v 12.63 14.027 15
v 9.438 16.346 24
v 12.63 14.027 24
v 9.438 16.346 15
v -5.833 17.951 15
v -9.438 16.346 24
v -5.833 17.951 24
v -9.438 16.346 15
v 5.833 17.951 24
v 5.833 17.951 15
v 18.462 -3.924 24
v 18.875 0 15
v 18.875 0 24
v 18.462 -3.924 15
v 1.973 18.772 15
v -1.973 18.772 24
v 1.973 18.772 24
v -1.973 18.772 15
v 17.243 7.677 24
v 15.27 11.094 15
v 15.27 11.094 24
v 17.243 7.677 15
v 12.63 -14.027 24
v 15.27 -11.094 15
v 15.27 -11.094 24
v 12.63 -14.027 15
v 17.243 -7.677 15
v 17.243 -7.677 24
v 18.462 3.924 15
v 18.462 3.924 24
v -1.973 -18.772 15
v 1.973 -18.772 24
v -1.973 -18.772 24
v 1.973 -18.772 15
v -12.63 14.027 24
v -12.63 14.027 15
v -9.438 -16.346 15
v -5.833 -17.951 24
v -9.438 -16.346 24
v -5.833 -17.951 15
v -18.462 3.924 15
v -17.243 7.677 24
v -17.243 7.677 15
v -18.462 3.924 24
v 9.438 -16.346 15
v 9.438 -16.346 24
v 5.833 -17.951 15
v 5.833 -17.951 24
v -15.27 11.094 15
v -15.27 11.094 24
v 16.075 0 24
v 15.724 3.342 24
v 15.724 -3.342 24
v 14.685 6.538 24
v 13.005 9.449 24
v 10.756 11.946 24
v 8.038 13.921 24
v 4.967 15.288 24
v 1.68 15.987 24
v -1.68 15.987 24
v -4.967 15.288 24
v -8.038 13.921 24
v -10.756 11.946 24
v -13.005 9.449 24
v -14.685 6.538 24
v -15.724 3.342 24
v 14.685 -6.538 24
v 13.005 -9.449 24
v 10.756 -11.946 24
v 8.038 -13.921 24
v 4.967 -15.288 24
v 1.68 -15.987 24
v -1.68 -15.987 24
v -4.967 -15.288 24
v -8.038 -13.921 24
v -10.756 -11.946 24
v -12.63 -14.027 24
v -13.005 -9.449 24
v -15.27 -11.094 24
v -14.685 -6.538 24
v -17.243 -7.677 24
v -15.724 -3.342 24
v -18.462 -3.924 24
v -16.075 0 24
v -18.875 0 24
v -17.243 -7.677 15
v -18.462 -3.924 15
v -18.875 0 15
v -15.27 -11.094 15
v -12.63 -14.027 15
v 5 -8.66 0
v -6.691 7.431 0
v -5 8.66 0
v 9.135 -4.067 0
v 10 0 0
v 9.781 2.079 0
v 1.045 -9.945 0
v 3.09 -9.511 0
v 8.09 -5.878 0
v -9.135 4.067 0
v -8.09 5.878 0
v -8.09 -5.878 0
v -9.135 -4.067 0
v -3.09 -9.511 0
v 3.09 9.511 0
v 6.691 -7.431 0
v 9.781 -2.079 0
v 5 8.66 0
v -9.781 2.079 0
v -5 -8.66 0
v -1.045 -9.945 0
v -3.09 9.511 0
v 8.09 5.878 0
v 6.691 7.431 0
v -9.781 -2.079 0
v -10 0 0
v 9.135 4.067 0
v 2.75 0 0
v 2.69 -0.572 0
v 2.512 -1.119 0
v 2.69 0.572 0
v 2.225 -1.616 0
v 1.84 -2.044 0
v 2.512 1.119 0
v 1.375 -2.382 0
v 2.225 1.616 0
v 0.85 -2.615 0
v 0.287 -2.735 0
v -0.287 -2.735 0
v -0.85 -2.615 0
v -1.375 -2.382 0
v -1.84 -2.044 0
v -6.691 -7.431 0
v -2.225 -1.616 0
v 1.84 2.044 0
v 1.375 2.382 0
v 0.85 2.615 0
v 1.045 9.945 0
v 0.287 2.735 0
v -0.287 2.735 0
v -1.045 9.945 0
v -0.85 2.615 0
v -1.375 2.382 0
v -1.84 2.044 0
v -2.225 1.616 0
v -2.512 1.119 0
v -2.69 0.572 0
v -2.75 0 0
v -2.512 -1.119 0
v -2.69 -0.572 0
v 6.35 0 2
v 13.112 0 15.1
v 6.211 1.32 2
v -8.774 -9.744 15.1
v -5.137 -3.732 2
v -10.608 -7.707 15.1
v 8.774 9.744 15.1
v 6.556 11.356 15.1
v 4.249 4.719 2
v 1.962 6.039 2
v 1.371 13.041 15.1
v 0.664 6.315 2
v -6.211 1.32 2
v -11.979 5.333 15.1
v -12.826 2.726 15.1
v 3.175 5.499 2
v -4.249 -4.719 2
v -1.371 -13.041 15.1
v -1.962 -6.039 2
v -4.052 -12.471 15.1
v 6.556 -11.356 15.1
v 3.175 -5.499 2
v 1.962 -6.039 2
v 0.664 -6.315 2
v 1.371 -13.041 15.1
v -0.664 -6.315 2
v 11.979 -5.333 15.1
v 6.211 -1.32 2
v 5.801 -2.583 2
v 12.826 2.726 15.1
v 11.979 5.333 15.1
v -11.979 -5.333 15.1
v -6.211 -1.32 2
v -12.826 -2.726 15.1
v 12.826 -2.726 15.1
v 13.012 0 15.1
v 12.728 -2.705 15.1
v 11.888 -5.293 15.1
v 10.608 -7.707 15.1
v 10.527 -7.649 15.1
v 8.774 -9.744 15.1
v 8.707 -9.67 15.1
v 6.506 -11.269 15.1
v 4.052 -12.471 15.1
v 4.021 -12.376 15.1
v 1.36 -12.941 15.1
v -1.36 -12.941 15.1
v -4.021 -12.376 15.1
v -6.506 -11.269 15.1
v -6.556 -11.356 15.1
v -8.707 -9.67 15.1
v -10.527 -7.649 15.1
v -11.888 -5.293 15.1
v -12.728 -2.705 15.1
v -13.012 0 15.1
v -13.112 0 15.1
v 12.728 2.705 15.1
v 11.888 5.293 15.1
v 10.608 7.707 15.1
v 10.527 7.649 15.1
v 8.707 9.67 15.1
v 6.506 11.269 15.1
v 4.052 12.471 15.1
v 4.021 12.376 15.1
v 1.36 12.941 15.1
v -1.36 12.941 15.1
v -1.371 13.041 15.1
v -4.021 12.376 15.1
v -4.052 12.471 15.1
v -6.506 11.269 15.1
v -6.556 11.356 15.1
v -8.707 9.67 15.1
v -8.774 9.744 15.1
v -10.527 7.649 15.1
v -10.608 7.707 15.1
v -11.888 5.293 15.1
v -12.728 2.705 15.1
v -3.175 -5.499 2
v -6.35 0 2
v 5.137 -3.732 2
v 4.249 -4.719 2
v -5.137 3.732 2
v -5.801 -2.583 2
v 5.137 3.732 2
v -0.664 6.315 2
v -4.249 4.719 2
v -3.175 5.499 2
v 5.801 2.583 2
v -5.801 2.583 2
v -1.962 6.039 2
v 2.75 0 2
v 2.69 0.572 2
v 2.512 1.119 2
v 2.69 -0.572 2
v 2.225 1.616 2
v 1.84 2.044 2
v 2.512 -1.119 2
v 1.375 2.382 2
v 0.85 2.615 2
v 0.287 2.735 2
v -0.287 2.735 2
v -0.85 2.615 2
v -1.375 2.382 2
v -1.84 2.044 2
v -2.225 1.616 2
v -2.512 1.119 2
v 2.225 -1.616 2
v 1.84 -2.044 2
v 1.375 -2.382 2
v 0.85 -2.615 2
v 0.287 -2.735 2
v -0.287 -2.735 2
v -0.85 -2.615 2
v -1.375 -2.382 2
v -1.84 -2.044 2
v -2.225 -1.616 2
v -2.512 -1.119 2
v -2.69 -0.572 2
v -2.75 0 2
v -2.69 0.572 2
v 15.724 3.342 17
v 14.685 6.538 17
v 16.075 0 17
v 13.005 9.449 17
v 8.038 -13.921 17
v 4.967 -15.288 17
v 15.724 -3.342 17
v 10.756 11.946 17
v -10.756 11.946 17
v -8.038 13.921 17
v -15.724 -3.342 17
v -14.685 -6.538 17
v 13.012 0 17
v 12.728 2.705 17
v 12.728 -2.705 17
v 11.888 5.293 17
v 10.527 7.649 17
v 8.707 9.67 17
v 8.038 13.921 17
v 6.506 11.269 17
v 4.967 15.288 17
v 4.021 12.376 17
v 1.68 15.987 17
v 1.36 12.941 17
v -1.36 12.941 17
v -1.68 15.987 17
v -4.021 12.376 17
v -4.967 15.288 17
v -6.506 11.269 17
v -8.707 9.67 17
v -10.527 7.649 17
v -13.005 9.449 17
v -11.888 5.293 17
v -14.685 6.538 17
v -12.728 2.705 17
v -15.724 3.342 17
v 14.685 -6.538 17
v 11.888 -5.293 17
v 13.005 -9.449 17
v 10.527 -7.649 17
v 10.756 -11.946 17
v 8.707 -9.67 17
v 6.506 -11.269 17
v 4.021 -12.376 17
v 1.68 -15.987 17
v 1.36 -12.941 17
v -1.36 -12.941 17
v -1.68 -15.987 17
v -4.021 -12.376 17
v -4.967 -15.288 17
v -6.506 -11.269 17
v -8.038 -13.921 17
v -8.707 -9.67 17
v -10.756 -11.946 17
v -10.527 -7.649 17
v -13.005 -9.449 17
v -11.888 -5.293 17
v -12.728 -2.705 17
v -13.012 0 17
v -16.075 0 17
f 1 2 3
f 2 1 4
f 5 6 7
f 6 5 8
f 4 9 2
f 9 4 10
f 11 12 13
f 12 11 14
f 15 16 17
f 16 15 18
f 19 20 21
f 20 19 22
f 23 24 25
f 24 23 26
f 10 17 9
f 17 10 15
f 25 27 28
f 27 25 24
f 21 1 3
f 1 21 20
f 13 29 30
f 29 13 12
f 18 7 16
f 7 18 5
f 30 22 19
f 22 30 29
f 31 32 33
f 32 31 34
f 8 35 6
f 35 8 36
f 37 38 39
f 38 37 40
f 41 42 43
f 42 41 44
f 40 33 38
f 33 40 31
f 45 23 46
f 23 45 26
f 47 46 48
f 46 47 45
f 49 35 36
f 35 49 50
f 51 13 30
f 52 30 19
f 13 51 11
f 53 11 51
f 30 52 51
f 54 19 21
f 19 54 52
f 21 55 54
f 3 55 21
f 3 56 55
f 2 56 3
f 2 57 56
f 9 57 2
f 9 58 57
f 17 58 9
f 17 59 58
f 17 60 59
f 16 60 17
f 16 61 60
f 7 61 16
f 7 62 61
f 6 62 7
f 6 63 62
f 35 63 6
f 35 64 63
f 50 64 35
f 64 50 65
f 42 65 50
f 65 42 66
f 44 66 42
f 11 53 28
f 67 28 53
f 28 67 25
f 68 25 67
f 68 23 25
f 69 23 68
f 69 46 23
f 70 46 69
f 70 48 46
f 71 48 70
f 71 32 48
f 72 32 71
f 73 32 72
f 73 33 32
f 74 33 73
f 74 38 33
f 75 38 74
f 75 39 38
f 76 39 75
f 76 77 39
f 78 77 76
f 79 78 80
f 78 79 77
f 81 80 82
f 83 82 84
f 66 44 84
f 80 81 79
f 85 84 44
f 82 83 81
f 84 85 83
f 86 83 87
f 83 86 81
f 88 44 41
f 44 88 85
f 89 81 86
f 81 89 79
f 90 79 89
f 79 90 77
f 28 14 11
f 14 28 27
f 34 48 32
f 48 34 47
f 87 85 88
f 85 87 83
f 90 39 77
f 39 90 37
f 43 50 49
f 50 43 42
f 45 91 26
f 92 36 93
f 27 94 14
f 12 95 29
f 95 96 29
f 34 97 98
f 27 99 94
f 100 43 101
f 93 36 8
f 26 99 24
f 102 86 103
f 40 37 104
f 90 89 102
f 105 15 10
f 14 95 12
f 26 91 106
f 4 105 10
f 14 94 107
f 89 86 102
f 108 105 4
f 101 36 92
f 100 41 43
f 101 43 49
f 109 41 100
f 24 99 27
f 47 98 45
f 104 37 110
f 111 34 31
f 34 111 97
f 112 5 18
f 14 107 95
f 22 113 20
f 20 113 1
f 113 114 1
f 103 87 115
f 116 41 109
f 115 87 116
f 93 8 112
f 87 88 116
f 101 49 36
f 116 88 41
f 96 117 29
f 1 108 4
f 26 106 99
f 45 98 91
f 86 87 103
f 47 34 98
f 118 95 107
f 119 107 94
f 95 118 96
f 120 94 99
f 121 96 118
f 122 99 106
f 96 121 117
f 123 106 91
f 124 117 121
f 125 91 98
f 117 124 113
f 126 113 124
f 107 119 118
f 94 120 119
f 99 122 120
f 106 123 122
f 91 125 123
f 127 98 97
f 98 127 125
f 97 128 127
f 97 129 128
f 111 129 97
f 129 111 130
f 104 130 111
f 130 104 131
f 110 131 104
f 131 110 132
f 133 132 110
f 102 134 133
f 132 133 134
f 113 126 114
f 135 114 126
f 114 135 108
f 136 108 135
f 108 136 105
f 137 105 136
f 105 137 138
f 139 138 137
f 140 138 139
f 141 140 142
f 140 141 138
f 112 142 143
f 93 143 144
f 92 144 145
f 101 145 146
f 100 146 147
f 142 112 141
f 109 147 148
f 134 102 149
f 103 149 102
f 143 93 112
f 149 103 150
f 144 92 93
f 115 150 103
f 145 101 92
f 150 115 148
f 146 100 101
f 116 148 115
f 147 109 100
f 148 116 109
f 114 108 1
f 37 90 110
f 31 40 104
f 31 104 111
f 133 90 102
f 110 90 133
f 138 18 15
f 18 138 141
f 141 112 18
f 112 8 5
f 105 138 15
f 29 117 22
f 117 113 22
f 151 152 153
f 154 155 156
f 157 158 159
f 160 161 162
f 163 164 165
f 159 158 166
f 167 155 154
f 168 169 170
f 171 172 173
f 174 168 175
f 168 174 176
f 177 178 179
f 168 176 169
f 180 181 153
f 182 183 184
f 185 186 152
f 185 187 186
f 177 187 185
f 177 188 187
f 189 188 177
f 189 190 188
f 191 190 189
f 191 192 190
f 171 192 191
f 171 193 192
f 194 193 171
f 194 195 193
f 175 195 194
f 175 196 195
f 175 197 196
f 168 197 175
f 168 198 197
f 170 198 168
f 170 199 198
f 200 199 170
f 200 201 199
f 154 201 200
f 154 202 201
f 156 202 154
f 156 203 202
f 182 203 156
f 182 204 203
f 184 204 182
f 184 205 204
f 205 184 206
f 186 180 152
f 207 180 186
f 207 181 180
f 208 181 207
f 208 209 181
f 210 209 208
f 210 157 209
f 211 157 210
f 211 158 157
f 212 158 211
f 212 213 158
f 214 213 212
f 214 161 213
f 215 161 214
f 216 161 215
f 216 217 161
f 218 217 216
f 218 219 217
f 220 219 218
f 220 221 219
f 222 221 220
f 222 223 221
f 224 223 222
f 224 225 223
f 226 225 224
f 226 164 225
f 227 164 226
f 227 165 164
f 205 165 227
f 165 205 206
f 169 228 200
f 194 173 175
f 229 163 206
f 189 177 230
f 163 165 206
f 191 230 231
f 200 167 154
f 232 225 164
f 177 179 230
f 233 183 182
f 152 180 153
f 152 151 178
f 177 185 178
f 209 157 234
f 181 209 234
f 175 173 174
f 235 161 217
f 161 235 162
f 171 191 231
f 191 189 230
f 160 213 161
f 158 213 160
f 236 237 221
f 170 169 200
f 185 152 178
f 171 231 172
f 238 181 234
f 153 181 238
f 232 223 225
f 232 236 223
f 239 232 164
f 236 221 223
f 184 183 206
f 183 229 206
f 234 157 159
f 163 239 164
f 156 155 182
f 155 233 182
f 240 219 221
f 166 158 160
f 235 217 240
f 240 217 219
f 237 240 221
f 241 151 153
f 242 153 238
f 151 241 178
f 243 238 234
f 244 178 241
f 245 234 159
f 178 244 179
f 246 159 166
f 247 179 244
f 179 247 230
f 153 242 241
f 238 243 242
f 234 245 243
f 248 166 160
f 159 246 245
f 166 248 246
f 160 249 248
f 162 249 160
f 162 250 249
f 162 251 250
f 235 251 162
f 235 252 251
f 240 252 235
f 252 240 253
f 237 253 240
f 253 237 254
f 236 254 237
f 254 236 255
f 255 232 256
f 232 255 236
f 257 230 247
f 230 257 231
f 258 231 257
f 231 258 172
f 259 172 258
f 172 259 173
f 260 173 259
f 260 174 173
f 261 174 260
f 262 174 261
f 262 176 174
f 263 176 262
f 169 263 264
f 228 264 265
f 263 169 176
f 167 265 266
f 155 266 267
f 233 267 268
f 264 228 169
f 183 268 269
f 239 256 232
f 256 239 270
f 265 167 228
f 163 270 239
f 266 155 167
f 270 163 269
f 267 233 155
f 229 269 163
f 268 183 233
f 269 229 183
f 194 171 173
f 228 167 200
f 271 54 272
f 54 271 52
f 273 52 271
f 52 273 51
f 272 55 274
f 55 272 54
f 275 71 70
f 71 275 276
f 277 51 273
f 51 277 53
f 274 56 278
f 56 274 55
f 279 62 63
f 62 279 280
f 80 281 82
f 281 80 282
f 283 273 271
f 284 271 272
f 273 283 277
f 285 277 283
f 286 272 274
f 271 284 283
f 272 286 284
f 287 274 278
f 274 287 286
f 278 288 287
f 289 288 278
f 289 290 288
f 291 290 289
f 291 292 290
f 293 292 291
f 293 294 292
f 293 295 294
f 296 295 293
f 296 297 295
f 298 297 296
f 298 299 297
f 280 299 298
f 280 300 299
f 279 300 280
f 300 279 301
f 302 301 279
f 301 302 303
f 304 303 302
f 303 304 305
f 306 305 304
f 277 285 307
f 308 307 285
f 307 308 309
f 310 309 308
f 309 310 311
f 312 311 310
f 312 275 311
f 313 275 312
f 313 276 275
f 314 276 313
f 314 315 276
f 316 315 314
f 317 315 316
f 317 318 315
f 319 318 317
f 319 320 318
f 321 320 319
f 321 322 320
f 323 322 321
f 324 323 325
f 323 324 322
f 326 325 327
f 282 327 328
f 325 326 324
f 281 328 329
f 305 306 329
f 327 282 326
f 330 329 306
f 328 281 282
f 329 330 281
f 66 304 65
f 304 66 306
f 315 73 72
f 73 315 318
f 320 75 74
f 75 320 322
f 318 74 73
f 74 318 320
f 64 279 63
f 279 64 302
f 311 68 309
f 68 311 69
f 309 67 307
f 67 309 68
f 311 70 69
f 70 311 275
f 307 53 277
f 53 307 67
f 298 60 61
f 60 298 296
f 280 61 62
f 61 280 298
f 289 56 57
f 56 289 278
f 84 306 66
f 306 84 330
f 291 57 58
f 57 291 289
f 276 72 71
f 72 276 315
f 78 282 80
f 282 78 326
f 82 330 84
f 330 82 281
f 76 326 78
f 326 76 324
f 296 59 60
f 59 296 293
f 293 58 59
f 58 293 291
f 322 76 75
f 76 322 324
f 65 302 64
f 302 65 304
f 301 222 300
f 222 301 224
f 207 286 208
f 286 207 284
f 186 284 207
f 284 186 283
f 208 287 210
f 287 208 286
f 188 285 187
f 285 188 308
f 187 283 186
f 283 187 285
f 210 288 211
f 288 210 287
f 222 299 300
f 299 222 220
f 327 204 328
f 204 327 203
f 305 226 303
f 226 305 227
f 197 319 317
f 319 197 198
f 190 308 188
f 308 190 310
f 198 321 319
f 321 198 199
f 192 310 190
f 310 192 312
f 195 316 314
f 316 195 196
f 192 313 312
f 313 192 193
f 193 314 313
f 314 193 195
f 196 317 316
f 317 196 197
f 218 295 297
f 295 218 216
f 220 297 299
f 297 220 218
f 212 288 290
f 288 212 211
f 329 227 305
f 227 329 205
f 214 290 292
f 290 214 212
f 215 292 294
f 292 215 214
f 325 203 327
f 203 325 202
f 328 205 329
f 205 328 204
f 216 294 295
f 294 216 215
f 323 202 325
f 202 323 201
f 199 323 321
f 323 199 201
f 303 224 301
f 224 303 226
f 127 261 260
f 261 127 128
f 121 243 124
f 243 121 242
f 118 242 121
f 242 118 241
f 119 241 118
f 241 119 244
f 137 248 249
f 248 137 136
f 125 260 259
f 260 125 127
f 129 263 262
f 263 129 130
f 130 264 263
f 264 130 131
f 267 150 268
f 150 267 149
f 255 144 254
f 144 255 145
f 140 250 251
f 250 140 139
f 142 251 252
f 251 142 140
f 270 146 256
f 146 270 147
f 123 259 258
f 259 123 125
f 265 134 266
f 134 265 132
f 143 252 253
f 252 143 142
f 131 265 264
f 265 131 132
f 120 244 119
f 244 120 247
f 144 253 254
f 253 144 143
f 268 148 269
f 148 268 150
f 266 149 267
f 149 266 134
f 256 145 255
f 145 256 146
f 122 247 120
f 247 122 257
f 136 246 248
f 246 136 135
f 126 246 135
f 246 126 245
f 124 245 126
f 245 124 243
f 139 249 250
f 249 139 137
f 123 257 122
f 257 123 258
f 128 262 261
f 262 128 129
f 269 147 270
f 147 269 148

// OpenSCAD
/*
dia = 31.75;
hi = 9;
cut = 0;
*/


dia = 31.75;
hi = 14;
cut = 5;


translate([0,0,0])mouse_conenozzle(dia,hi,cut);


module mouse_conenozzle(dia,hi,cut){
//dia = 31;
//hi = 9;
difference(){
union(){
translate([0,0,hi+1])cylinder(r=(dia+6)/2,h=hi-cut,$fn=30);
cylinder(r2=(dia+6)/2,r1=10,h=hi+1,$fn=30);
}
translate([0,0,2])cylinder(r1=(dia*0.4)/2,r2=(dia+0.6-6.125)/2,h=hi-0.9,$fn=30);
translate([0,0,hi+3])cylinder(r=(dia+0.4)/2,h=hi*3,$fn=30);
translate([0,0,hi+1])cylinder(r=(dia+0.4-6.125)/2,h=hi*3,$fn=30);
translate([0,0,-1])cylinder(r=(5.5)/2,h=hi*3,$fn=30);
}
}
